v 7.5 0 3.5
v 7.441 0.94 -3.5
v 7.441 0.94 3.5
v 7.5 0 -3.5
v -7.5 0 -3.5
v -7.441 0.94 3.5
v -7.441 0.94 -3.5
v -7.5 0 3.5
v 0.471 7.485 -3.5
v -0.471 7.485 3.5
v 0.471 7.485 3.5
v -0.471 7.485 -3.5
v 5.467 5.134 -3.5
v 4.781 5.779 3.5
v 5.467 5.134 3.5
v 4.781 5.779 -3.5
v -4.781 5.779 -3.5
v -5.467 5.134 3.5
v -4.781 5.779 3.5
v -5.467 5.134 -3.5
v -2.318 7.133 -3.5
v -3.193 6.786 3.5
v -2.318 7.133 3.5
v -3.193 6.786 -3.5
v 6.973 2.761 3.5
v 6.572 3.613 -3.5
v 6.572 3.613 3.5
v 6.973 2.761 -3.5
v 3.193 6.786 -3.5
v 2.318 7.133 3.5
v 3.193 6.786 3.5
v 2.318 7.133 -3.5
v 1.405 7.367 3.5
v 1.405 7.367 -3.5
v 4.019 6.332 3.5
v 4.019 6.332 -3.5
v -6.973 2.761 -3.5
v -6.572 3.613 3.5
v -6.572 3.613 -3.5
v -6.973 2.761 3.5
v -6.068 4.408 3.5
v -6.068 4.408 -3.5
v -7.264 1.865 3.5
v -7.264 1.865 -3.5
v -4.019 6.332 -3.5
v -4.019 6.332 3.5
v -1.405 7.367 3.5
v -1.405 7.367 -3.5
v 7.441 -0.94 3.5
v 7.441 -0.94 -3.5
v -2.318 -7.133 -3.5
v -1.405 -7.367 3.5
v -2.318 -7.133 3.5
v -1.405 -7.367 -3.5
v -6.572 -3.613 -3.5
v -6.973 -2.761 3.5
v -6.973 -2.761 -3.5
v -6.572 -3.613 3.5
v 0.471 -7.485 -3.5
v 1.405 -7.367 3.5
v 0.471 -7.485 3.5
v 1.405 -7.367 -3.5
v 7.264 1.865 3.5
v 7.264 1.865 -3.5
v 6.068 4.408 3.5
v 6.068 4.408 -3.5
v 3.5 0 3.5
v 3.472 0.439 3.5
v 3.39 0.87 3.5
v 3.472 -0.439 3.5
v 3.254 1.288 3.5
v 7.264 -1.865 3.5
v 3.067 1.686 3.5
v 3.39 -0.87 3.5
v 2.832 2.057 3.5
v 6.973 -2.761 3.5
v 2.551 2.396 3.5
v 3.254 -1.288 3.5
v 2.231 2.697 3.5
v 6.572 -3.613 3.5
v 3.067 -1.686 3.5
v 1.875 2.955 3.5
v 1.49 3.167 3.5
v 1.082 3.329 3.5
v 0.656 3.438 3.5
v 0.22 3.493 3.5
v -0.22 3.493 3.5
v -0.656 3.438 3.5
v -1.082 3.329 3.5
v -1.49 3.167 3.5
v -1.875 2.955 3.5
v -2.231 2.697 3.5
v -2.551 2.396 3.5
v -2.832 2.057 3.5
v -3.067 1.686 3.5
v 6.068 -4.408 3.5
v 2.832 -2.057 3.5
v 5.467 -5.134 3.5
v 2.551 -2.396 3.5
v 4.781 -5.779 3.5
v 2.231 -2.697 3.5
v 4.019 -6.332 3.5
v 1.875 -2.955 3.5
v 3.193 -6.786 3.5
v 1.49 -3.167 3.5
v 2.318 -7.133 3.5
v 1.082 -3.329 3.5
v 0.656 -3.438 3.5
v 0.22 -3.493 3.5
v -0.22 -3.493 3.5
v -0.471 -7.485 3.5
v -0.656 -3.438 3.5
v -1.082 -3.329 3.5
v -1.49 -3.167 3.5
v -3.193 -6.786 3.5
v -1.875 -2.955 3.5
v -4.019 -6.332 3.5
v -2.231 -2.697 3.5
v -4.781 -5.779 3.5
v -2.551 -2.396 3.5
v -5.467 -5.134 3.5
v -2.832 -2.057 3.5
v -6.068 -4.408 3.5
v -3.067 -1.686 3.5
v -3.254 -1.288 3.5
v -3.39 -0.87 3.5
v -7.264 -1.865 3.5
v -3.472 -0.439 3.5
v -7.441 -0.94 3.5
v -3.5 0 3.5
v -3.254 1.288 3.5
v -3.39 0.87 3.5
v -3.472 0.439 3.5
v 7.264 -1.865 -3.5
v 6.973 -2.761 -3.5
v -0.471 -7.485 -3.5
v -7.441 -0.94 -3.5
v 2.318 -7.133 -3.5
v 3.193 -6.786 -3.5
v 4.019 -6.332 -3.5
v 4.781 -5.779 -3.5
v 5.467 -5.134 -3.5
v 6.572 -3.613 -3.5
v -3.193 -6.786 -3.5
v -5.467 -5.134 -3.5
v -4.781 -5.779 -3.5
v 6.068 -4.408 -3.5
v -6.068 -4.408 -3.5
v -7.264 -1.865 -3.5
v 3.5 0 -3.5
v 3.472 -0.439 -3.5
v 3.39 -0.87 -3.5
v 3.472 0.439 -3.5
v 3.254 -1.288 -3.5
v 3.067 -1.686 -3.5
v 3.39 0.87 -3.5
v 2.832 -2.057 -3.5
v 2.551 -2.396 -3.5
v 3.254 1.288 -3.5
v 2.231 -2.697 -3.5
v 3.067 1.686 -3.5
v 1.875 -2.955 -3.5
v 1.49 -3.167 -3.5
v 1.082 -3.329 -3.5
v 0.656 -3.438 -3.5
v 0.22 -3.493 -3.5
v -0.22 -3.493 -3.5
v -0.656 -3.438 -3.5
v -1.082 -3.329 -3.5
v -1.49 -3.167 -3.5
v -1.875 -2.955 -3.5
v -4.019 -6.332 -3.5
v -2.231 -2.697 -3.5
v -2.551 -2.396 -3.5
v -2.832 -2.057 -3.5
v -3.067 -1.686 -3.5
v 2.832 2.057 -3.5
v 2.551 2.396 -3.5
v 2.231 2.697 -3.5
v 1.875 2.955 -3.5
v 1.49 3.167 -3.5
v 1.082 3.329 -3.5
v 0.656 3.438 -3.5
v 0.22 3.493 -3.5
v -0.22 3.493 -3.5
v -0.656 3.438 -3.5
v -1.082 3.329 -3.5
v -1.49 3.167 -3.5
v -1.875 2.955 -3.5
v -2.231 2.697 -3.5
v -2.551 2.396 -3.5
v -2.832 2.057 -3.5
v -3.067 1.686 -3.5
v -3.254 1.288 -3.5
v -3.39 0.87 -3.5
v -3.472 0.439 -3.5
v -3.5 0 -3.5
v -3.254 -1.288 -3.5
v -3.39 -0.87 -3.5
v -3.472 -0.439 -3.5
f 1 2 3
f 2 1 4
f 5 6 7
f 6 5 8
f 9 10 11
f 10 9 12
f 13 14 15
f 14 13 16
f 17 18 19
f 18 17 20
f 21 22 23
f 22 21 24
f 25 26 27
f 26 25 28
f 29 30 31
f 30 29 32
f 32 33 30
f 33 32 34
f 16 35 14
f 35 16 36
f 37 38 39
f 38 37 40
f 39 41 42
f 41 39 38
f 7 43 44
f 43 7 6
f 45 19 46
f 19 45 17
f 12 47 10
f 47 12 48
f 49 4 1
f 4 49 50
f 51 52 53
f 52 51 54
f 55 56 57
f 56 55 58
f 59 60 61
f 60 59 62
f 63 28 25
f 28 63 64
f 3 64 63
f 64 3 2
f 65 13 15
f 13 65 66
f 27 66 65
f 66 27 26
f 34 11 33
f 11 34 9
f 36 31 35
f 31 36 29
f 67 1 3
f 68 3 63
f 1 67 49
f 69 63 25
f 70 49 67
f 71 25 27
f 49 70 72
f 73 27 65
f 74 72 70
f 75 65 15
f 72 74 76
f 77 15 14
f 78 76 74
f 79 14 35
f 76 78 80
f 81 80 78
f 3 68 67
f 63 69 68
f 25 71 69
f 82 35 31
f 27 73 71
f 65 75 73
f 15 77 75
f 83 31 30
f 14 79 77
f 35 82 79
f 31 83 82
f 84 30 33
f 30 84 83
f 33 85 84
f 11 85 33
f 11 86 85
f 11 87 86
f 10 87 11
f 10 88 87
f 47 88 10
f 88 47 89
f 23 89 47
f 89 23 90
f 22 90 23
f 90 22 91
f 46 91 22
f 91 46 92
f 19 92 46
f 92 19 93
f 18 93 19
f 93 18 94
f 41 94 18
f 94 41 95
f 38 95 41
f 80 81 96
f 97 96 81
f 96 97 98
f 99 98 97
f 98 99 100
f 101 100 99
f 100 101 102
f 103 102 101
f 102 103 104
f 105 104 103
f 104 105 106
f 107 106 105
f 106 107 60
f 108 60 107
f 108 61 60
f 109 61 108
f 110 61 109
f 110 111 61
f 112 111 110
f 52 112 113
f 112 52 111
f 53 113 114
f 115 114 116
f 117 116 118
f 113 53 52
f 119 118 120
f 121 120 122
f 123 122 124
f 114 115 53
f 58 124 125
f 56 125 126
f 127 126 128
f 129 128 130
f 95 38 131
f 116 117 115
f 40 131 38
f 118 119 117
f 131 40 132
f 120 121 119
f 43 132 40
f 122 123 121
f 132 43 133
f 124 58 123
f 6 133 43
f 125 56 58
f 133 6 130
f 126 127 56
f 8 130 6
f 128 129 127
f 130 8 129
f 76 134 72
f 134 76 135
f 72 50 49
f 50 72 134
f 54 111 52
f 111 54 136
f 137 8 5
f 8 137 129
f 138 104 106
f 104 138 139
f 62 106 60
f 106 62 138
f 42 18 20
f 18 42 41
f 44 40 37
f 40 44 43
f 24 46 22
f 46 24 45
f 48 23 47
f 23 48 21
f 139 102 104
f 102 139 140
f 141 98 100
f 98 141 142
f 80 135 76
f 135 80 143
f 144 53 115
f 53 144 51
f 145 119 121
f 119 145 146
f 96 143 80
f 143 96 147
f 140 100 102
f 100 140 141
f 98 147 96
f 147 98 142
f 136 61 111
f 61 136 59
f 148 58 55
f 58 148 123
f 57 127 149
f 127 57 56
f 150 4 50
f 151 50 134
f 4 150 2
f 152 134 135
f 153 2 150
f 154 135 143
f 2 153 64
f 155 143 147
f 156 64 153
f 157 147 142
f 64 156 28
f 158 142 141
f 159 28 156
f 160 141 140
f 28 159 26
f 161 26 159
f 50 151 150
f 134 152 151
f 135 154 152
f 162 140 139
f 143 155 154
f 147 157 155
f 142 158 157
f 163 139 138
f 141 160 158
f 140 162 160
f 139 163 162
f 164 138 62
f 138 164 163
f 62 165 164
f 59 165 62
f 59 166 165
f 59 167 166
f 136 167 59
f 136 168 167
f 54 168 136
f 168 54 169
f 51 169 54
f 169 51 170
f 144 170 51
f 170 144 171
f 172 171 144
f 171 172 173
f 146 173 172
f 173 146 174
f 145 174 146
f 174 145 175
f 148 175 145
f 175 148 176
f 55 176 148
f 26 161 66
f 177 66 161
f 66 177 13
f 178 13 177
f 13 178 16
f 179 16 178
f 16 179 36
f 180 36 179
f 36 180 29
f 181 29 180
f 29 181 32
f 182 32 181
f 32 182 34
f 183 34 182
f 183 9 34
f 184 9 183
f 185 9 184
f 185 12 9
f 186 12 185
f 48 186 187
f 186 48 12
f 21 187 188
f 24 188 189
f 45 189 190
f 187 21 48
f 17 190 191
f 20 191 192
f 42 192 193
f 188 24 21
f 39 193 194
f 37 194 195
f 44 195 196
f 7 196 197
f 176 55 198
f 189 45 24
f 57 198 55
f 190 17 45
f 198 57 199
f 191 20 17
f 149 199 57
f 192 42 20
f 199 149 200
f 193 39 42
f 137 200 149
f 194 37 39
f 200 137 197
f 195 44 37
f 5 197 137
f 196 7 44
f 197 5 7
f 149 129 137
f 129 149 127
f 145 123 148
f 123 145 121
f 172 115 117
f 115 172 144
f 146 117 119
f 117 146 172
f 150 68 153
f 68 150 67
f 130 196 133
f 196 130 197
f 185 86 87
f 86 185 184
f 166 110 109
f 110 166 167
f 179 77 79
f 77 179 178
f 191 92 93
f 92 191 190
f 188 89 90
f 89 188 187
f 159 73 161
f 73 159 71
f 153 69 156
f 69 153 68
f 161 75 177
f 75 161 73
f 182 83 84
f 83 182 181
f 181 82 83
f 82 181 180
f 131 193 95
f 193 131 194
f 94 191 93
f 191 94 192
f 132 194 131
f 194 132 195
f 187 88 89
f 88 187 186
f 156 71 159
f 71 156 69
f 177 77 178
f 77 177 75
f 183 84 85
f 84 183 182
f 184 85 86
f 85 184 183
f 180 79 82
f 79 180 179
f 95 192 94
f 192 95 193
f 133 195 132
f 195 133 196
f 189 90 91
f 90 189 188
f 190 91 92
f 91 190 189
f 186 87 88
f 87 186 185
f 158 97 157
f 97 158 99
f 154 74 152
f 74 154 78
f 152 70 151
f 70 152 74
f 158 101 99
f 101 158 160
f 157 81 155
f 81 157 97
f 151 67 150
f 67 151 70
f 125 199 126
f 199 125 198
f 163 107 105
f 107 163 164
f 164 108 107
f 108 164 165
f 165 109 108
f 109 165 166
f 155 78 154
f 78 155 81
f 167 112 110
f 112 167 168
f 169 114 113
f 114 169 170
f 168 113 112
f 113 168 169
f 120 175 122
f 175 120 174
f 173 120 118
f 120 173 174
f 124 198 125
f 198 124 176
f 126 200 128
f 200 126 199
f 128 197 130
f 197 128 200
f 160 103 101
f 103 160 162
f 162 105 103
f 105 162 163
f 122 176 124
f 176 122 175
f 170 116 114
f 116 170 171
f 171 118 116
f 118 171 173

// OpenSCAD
$fn = 50;


difference() {
	union() {
		translate(v = [0, 0, -3.5000000000]) {
			cylinder(h = 7, r = 7.5000000000);
		}
	}
	union() {
		translate(v = [0, 0, -100.0000000000]) {
			cylinder(h = 200, r = 3.5000000000);
		}
	}
}
